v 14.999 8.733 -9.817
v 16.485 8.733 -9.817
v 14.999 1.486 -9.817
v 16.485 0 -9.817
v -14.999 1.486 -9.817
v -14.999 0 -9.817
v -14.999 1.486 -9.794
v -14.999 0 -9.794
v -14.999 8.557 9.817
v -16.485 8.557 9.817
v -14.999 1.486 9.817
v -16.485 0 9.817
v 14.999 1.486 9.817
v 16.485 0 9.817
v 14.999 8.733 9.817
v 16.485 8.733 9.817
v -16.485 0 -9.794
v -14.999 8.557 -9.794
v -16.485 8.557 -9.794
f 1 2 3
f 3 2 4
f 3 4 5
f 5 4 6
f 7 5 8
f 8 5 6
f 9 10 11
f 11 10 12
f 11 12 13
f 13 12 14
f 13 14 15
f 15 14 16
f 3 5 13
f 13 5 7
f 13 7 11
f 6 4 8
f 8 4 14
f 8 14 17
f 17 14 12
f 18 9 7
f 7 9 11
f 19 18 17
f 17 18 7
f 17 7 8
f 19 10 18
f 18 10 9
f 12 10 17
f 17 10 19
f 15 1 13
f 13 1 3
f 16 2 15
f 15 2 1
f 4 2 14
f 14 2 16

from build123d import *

# Parameters (mm, degrees)
SKETCH1_W           = 29.9974
SKETCH1_H           = 19.6342
BOSS_EXTRUDE1_DEPTH = 1.4859
SKETCH2_W           = 19.610793651
SKETCH2_H           = 8.55658582
BOSS_EXTRUDE2_DEPTH = 1.4859
SKETCH3_W           = 19.6342
SKETCH3_H           = 8.73321644
BOSS_EXTRUDE3_DEPTH = 1.4859


with BuildPart() as part:
    # Sketch1 → Boss-Extrude1 (new body)
    with BuildSketch(Plane(origin=(0, 0, 0), x_dir=(1, 0, 0), z_dir=(0, 1, 0))):
        Rectangle(SKETCH1_W, SKETCH1_H)
    extrude(amount=BOSS_EXTRUDE1_DEPTH)

    # Sketch2 → Boss-Extrude2 (add)
    with BuildSketch(Plane(origin=(-14.9987, 0, 0), x_dir=(0, 0, -1), z_dir=(1, 0, 0))):
        with Locations((-0.011703175, 4.27829291)):
            Rectangle(SKETCH2_W, SKETCH2_H)
    extrude(amount=-BOSS_EXTRUDE2_DEPTH)

    # Sketch3 → Boss-Extrude3 (add)
    with BuildSketch(Plane(origin=(14.9987, 0, 0), x_dir=(0, 0, -1), z_dir=(1, 0, 0))):
        with Locations((0, 4.36660822)):
            Rectangle(SKETCH3_W, SKETCH3_H)
    extrude(amount=BOSS_EXTRUDE3_DEPTH)


solid = part.part
